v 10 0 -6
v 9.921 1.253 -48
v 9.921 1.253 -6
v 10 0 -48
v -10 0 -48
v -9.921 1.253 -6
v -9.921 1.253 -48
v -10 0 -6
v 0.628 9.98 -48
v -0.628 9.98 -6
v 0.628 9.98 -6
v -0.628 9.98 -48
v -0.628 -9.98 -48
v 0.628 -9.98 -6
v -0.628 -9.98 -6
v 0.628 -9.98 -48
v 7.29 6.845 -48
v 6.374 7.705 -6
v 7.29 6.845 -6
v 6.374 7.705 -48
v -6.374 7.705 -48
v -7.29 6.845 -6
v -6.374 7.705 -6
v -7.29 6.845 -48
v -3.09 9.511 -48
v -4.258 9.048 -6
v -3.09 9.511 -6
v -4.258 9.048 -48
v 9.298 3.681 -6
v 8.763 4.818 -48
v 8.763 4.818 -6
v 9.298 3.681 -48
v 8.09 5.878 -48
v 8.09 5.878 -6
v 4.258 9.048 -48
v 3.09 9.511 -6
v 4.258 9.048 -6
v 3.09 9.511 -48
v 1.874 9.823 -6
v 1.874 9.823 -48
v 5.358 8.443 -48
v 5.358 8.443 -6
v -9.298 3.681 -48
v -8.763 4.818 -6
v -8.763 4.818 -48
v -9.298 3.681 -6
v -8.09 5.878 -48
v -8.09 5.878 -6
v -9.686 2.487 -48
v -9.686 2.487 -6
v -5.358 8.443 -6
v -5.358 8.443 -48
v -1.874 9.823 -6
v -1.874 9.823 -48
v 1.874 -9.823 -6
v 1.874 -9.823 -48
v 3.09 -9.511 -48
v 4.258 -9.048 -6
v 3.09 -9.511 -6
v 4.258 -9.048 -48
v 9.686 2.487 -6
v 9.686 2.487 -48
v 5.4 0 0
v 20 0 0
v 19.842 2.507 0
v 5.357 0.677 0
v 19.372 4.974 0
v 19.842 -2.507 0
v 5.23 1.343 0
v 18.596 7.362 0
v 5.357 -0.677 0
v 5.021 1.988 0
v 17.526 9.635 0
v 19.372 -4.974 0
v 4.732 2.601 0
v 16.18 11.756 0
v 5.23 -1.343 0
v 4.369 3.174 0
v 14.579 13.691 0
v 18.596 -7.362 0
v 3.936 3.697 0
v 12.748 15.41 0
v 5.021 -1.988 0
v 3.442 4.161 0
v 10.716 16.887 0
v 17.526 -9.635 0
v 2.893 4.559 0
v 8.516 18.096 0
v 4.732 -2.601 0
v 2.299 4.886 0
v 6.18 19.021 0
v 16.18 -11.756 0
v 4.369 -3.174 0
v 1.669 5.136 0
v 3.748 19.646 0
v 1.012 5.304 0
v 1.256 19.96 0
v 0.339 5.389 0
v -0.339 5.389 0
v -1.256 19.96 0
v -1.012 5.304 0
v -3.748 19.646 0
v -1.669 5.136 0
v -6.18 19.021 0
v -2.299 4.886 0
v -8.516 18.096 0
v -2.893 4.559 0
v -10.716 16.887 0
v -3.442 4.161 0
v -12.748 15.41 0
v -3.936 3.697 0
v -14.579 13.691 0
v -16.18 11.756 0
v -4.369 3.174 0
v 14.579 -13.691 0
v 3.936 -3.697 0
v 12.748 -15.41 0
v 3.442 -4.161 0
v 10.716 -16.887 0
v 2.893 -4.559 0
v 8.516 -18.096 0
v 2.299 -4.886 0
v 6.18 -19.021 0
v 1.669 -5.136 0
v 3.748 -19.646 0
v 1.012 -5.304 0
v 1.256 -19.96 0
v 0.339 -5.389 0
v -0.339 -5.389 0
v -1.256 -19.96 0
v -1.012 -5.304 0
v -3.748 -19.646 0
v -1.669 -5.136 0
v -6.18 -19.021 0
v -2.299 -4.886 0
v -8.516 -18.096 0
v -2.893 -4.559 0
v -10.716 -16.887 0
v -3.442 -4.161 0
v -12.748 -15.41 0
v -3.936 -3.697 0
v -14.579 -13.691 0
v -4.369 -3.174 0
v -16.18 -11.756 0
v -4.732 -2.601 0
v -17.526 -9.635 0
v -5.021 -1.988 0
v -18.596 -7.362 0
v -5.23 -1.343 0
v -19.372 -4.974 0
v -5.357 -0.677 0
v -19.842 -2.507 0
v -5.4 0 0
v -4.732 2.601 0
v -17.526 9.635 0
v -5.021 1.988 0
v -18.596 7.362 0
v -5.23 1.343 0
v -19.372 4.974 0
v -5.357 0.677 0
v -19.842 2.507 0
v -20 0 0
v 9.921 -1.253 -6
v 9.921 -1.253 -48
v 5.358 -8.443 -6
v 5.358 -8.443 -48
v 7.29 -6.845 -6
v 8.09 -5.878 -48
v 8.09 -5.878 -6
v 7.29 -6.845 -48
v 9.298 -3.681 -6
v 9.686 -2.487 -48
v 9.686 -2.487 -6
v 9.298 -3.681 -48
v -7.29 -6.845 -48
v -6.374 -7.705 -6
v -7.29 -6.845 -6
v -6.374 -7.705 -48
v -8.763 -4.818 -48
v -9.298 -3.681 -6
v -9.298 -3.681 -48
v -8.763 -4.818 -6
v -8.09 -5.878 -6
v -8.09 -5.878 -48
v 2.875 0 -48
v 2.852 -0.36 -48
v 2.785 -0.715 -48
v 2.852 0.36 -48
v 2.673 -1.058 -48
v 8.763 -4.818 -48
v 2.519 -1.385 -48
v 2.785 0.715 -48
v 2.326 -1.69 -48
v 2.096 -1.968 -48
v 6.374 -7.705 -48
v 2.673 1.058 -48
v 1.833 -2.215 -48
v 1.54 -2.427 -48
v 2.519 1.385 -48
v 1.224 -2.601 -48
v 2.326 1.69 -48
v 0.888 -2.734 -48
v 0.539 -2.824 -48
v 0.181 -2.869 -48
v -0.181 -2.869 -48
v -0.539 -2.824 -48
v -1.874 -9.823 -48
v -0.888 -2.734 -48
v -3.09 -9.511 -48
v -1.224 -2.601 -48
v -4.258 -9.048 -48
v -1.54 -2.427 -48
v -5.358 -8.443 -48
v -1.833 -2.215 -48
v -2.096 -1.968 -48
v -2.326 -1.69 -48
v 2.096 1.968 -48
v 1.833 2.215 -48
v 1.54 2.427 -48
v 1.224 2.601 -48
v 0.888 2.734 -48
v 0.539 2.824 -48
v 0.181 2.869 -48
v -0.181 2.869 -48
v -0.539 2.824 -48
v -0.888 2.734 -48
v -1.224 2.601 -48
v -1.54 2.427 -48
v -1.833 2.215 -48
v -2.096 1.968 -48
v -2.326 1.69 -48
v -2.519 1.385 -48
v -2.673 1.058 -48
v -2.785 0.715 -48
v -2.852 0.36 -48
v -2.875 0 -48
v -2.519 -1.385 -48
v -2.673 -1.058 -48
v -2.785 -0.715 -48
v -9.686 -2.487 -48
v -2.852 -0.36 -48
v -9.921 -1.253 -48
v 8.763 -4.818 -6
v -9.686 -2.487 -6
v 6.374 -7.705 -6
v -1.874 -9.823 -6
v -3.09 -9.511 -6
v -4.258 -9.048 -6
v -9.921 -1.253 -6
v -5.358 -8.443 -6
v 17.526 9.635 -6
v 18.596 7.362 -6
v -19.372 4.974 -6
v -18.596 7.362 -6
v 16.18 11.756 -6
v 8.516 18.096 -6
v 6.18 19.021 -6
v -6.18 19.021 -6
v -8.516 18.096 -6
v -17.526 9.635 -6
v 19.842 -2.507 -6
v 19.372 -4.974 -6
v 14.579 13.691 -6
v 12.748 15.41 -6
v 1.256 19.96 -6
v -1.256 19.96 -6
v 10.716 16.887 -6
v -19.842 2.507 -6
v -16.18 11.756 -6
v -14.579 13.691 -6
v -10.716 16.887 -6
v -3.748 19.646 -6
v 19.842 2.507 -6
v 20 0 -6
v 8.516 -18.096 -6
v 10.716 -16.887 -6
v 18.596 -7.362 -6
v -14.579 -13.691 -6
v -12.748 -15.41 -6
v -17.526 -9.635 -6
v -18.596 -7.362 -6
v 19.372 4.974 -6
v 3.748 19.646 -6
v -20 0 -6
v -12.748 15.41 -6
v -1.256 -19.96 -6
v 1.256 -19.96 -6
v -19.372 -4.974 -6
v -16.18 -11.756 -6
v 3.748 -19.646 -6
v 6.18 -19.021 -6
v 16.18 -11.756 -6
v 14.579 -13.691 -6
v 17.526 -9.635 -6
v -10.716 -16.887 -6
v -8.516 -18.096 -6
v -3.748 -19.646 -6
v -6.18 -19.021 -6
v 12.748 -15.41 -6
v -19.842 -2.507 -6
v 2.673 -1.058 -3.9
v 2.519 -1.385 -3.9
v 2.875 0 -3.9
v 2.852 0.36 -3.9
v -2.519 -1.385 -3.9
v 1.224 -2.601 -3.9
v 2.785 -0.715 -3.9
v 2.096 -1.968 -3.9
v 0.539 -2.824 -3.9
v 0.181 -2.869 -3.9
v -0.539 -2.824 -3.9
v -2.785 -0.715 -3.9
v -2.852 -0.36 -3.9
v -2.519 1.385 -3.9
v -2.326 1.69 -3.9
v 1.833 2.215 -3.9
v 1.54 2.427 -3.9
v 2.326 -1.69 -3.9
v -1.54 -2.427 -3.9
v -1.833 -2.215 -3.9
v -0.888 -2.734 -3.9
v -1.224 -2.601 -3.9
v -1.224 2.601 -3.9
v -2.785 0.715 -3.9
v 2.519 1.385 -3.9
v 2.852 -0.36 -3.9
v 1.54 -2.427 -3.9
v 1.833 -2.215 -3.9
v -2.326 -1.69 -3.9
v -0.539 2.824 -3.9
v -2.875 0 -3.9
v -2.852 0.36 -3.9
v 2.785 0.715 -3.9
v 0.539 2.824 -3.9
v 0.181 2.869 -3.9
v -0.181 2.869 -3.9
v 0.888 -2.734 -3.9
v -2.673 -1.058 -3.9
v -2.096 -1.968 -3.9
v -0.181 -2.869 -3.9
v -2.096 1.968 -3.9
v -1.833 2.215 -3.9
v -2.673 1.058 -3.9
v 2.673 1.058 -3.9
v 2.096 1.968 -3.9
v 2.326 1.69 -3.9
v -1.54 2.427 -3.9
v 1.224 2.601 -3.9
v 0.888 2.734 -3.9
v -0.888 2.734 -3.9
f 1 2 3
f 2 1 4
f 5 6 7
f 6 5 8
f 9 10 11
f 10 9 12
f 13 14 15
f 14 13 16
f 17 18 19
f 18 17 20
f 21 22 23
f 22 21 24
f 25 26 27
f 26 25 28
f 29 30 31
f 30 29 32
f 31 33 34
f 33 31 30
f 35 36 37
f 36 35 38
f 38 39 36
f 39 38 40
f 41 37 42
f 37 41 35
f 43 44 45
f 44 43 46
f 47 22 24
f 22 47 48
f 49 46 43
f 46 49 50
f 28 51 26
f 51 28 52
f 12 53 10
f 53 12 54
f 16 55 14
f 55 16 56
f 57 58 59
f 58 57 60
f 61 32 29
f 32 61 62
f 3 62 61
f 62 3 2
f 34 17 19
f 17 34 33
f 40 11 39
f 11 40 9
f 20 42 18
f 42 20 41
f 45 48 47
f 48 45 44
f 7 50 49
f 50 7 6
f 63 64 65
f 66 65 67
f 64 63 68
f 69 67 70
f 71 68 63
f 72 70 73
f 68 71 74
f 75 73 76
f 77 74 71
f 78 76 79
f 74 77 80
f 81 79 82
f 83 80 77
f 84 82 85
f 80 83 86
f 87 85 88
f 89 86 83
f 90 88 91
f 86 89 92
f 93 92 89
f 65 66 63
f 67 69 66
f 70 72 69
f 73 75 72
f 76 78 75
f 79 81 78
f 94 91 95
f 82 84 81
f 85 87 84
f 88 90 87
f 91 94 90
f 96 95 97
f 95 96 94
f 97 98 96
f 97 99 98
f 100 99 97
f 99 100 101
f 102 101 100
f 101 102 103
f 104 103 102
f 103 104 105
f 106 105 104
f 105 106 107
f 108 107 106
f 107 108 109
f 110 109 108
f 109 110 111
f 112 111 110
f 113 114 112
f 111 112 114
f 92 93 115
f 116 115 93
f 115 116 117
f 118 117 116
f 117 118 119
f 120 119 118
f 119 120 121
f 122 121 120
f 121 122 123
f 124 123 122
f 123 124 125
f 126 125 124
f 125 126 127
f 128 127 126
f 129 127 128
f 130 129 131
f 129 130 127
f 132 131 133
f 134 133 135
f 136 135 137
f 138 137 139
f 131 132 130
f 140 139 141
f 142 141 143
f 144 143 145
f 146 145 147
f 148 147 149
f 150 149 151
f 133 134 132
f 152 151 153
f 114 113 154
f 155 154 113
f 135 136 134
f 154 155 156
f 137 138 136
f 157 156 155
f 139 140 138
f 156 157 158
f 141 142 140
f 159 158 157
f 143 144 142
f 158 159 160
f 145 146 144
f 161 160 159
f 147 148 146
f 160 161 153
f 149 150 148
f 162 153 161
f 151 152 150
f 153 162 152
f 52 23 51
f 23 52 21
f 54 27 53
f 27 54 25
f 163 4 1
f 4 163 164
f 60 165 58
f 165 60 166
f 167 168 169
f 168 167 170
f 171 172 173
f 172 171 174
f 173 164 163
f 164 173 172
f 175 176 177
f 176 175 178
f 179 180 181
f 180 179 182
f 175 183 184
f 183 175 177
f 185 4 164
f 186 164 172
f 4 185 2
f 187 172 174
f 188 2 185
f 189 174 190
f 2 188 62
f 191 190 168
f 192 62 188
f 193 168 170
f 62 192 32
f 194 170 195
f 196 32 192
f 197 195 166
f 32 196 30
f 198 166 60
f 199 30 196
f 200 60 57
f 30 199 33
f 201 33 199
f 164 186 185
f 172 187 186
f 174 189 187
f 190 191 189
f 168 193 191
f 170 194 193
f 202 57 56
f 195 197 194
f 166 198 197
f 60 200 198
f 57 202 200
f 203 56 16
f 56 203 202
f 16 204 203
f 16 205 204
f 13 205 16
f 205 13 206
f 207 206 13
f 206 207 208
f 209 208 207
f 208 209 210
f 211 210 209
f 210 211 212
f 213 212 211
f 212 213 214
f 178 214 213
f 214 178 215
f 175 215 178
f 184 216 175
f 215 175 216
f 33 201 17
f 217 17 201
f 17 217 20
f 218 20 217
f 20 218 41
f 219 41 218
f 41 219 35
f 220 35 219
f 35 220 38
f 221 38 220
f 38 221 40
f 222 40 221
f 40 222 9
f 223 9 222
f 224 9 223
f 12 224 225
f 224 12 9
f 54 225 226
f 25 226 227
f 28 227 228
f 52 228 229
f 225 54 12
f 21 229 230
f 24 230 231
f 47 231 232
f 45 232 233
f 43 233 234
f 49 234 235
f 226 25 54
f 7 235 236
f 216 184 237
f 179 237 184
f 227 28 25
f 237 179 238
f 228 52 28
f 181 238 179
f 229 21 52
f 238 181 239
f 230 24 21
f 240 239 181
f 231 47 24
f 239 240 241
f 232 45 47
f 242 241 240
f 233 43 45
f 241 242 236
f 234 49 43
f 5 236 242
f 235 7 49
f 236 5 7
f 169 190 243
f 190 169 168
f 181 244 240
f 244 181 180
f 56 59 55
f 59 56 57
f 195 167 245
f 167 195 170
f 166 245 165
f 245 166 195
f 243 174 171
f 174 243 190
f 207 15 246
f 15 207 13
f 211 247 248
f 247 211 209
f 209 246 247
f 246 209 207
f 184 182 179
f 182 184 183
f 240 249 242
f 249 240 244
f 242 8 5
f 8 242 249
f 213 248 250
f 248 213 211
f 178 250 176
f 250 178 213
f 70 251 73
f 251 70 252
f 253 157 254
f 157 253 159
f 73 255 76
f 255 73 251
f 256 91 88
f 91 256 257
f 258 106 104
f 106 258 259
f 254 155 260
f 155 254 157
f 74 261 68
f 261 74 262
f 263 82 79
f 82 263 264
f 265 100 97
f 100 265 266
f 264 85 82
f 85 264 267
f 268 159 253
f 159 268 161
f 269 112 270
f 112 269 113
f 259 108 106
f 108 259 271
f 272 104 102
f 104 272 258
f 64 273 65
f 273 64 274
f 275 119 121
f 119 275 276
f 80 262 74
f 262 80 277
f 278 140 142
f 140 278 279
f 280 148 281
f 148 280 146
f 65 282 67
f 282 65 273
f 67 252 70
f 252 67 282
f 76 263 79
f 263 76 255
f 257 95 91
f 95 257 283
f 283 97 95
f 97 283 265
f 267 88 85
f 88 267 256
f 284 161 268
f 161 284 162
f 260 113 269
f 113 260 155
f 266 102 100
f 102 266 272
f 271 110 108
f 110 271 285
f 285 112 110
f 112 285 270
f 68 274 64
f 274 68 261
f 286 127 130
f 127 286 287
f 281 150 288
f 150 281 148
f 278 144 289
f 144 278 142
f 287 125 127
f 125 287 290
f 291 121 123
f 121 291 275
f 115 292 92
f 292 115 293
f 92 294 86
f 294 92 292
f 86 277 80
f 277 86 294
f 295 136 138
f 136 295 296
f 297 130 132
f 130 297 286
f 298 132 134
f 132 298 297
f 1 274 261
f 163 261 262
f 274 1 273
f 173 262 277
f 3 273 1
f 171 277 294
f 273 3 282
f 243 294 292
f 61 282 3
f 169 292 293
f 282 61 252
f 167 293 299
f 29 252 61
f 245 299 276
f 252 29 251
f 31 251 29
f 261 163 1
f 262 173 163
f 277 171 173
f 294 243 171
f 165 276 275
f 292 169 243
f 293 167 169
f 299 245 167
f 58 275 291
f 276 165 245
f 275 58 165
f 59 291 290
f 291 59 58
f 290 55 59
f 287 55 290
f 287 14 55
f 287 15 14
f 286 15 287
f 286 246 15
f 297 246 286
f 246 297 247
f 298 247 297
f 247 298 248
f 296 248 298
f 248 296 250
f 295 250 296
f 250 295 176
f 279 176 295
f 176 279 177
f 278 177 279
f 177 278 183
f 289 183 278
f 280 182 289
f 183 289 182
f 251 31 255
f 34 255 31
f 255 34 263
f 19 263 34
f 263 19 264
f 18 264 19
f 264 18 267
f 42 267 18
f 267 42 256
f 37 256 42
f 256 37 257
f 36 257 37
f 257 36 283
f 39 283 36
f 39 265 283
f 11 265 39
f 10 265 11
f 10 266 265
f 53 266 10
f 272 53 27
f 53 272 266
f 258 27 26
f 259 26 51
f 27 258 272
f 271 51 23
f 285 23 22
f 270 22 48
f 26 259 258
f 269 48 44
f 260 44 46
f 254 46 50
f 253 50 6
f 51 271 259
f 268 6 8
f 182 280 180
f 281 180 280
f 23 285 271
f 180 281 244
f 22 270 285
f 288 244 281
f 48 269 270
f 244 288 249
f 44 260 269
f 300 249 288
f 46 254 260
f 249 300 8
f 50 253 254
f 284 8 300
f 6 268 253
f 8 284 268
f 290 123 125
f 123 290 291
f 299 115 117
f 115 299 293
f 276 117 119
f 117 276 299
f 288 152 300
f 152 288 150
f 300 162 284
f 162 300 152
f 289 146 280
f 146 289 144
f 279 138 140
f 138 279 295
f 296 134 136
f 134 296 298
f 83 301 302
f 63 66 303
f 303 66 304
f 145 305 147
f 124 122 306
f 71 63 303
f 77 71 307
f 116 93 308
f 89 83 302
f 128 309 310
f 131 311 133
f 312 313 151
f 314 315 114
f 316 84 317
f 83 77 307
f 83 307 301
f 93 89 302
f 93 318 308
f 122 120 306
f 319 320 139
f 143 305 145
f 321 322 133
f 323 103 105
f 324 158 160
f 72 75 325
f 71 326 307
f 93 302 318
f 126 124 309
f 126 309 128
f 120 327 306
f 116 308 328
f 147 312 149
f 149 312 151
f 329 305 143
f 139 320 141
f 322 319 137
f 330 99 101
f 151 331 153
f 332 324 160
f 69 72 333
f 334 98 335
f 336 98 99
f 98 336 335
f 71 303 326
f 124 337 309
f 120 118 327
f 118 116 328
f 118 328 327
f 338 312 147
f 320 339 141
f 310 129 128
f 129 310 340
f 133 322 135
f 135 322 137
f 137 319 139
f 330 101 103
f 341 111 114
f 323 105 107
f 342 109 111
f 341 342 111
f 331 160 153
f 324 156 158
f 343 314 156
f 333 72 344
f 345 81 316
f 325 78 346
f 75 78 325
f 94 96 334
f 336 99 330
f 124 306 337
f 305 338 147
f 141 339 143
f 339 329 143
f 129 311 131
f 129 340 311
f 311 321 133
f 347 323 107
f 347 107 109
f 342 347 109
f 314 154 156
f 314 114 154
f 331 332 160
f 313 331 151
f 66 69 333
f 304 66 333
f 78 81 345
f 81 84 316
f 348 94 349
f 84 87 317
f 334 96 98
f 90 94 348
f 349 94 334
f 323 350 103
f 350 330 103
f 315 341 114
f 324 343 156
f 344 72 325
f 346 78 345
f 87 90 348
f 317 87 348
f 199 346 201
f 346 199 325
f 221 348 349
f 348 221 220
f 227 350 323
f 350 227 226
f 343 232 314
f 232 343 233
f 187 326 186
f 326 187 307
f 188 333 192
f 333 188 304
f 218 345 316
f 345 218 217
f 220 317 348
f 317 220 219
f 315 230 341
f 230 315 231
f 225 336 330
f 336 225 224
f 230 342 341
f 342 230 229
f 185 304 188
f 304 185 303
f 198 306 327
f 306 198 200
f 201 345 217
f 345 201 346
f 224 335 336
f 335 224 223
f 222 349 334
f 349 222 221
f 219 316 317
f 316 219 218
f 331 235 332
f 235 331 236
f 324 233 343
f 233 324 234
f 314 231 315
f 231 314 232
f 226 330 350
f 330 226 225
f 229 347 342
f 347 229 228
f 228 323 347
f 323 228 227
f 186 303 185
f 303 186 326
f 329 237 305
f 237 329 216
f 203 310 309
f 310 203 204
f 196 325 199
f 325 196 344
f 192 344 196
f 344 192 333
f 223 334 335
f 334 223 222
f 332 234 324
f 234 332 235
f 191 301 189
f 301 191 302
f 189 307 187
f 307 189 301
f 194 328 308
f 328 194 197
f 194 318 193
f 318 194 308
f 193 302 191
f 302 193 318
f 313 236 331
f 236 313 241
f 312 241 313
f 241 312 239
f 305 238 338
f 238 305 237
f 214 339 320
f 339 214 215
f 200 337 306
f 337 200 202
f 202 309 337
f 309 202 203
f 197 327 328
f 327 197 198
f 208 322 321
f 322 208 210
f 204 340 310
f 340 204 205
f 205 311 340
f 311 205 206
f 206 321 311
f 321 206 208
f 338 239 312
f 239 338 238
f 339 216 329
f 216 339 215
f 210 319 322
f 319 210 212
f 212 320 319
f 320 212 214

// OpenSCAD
$fn = 50;


difference() {
	union() {
		translate(v = [0, 0, -48.0000000000]) {
			cylinder(h = 48, r = 10.0000000000);
		}
		translate(v = [0, 0, -6.0000000000]) {
			cylinder(h = 6, r = 20.0000000000);
		}
	}
	union() {
		translate(v = [0, 0, 0]) {
			rotate(a = [0, 0, 0]) {
				difference() {
					union() {
						#translate(v = [0, 0, -48.0000000000]) {
							cylinder(h = 48, r = 2.6000000000);
						}
						#translate(v = [0, 0, -3.9000000000]) {
							cylinder(h = 3.9000000000, r = 10.0000000000, r1 = 2.8750000000, r2 = 5.4000000000);
						}
						#translate(v = [0, 0, -48.0000000000]) {
							cylinder(h = 48, r = 2.8750000000);
						}
						#translate(v = [0, 0, -48.0000000000]) {
							cylinder(h = 48, r = 2.6000000000);
						}
					}
					union();
				}
			}
		}
	}
}
